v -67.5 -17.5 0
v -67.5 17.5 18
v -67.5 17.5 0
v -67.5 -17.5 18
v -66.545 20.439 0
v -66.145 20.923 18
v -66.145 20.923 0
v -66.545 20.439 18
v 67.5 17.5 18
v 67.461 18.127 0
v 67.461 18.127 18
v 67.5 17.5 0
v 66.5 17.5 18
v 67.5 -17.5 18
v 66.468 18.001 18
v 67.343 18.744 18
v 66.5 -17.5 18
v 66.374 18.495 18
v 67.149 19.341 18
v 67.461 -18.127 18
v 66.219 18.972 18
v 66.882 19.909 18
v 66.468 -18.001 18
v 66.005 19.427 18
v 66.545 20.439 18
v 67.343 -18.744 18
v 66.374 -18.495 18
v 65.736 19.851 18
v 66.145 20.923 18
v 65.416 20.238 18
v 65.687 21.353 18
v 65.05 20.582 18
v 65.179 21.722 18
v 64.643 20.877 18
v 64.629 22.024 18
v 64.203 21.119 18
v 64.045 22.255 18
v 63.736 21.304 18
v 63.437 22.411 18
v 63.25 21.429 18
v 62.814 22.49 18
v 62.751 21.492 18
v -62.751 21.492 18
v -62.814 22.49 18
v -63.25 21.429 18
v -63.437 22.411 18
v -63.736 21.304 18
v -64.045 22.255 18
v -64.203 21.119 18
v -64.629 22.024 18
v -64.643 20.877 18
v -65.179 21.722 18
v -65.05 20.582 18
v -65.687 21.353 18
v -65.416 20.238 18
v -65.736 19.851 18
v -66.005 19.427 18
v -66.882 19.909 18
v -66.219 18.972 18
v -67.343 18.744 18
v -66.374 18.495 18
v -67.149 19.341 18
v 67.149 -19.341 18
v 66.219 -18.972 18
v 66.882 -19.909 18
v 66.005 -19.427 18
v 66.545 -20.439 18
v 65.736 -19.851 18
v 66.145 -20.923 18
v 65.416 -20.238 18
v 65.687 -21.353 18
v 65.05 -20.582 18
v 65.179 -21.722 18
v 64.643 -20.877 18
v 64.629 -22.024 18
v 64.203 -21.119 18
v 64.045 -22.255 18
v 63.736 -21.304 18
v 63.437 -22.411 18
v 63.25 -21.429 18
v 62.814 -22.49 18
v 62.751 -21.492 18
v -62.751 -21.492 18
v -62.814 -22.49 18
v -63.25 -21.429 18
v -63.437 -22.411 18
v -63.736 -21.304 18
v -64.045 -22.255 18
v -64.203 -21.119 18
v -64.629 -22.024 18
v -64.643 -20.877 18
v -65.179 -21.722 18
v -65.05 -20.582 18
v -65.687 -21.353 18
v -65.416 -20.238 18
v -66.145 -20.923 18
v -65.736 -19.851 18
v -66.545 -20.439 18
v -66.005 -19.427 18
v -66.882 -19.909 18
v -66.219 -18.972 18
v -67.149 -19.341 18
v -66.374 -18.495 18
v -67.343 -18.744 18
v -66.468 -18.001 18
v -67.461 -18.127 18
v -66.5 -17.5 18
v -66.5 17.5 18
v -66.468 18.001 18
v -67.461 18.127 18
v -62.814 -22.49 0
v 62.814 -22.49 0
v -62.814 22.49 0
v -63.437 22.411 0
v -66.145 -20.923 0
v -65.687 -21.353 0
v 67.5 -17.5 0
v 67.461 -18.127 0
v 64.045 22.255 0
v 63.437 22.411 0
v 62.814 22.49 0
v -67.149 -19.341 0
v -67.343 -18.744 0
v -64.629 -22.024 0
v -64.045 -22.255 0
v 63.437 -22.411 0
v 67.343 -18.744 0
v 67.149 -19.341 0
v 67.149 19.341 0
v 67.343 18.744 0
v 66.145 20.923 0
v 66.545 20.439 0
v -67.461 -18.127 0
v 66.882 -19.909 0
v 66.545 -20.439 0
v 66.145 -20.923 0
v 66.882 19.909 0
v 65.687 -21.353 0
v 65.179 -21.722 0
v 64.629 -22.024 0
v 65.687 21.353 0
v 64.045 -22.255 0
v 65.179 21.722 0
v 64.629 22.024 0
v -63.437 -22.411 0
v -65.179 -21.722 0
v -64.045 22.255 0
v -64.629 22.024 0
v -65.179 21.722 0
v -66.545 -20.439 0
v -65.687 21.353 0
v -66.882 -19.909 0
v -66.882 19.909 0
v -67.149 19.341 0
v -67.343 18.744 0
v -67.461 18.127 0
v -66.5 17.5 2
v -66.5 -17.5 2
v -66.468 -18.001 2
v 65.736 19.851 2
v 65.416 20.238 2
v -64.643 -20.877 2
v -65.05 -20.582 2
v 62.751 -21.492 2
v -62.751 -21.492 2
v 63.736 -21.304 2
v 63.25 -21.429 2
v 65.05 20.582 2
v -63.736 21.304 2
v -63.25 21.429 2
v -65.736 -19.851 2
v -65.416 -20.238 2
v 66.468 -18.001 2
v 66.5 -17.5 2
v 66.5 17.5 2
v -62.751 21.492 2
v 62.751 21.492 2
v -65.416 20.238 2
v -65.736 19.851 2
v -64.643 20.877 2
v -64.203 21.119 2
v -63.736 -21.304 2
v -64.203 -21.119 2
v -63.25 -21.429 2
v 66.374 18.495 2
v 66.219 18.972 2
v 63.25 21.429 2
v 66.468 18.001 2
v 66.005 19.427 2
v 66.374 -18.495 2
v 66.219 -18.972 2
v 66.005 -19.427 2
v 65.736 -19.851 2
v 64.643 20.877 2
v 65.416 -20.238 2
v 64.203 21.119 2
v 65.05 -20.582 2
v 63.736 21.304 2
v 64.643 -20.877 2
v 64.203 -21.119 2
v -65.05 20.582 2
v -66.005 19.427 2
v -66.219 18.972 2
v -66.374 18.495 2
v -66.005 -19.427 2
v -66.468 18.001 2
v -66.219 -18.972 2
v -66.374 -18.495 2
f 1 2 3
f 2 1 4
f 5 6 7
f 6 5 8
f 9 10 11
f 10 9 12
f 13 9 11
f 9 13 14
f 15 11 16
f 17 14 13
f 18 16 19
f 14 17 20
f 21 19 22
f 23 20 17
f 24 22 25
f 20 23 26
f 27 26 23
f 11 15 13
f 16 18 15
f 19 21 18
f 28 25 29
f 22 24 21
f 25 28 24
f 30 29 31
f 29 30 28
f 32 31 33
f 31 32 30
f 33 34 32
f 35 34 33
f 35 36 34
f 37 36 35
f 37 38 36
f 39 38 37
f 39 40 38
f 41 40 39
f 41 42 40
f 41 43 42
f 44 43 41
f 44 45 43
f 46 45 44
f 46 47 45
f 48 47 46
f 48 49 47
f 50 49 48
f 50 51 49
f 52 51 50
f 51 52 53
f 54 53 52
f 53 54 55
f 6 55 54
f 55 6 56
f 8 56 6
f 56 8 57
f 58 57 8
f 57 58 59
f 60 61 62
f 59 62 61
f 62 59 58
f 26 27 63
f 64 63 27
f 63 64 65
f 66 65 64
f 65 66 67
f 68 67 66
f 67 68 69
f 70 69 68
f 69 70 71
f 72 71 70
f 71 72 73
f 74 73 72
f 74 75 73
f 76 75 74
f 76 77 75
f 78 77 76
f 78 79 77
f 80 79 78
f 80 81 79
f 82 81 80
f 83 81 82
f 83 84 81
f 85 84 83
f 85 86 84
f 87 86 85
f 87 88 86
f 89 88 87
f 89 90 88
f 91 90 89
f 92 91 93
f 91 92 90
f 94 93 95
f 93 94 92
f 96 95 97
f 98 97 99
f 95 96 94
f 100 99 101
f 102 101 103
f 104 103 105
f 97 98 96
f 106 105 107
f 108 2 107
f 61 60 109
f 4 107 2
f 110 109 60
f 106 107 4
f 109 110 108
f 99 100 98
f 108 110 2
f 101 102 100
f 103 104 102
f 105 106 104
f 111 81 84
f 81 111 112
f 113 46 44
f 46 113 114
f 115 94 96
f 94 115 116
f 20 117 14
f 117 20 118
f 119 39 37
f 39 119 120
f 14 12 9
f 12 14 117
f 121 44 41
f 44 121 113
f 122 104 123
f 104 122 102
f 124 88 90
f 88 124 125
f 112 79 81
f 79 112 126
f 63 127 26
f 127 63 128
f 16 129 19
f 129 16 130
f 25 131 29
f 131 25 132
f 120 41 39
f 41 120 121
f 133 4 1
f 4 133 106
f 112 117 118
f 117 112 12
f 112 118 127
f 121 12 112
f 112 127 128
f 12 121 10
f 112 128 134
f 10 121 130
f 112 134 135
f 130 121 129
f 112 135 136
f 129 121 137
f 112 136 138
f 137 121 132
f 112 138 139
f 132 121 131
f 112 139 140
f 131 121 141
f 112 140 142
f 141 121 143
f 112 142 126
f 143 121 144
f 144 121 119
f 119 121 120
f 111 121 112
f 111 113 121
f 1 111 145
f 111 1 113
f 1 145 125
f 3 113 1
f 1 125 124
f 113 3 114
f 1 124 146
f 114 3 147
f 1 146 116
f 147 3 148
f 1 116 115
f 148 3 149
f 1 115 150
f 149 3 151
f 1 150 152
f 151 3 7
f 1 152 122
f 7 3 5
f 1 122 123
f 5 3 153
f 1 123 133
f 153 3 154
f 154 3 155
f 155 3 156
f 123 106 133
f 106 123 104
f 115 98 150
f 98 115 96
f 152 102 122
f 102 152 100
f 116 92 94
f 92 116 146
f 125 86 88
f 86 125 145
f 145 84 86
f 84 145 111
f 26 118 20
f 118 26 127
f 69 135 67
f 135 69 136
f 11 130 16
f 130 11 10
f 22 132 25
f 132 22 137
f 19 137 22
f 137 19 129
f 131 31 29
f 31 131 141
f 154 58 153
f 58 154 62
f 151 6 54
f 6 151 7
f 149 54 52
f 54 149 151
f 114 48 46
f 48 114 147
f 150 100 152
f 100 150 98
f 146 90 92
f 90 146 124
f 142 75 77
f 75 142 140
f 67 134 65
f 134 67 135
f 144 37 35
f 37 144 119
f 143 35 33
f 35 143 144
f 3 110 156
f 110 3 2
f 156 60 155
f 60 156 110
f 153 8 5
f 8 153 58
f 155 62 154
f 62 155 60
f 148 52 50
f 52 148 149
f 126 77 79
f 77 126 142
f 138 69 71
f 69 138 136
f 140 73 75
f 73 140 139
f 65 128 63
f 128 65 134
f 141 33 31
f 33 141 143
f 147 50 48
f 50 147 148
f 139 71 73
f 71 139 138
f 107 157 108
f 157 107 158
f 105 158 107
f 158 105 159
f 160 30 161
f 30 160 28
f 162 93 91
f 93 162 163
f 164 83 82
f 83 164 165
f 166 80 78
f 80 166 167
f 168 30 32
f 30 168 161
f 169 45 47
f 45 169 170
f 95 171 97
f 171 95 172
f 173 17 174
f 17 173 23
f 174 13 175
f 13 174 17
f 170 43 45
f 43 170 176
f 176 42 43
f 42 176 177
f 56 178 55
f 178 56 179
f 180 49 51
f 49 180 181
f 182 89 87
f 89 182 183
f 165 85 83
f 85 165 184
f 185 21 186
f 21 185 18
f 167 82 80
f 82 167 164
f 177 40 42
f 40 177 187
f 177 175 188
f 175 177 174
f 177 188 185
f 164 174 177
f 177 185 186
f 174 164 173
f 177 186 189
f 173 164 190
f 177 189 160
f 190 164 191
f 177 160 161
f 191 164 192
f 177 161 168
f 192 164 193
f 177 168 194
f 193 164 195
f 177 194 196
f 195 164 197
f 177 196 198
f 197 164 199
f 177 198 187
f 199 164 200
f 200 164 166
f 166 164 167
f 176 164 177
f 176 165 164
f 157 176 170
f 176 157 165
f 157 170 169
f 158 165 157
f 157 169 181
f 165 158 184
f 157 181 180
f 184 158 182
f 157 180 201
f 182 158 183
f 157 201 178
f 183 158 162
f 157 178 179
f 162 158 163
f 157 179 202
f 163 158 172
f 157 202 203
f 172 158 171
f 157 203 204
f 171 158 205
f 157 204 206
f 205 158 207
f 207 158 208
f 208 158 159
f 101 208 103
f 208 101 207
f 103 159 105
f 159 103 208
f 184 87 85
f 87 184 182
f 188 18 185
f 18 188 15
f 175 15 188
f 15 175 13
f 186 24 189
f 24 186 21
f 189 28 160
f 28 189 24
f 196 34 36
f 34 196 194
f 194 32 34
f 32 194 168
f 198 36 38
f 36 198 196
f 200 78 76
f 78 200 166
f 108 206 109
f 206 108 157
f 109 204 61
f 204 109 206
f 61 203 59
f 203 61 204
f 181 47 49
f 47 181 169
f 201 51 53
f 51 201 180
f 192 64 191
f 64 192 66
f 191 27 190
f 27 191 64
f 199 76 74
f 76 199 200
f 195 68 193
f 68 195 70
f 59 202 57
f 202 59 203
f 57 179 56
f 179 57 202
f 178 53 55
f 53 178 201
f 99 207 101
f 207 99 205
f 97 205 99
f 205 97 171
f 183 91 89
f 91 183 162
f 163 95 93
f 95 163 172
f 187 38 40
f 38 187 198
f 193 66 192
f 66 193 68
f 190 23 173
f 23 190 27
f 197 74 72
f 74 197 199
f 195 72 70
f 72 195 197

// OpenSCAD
$fn = 50;


difference() {
	union() {
		hull() {
			translate(v = [-62.5000000000, 17.5000000000, 0]) {
				cylinder(h = 18, r = 5);
			}
			translate(v = [62.5000000000, 17.5000000000, 0]) {
				cylinder(h = 18, r = 5);
			}
			translate(v = [-62.5000000000, -17.5000000000, 0]) {
				cylinder(h = 18, r = 5);
			}
			translate(v = [62.5000000000, -17.5000000000, 0]) {
				cylinder(h = 18, r = 5);
			}
		}
	}
	union() {
		translate(v = [0, 0, 2]) {
			hull() {
				translate(v = [-62.5000000000, 17.5000000000, 0]) {
					cylinder(h = 16, r = 4);
				}
				translate(v = [62.5000000000, 17.5000000000, 0]) {
					cylinder(h = 16, r = 4);
				}
				translate(v = [-62.5000000000, -17.5000000000, 0]) {
					cylinder(h = 16, r = 4);
				}
				translate(v = [62.5000000000, -17.5000000000, 0]) {
					cylinder(h = 16, r = 4);
				}
			}
		}
	}
}
